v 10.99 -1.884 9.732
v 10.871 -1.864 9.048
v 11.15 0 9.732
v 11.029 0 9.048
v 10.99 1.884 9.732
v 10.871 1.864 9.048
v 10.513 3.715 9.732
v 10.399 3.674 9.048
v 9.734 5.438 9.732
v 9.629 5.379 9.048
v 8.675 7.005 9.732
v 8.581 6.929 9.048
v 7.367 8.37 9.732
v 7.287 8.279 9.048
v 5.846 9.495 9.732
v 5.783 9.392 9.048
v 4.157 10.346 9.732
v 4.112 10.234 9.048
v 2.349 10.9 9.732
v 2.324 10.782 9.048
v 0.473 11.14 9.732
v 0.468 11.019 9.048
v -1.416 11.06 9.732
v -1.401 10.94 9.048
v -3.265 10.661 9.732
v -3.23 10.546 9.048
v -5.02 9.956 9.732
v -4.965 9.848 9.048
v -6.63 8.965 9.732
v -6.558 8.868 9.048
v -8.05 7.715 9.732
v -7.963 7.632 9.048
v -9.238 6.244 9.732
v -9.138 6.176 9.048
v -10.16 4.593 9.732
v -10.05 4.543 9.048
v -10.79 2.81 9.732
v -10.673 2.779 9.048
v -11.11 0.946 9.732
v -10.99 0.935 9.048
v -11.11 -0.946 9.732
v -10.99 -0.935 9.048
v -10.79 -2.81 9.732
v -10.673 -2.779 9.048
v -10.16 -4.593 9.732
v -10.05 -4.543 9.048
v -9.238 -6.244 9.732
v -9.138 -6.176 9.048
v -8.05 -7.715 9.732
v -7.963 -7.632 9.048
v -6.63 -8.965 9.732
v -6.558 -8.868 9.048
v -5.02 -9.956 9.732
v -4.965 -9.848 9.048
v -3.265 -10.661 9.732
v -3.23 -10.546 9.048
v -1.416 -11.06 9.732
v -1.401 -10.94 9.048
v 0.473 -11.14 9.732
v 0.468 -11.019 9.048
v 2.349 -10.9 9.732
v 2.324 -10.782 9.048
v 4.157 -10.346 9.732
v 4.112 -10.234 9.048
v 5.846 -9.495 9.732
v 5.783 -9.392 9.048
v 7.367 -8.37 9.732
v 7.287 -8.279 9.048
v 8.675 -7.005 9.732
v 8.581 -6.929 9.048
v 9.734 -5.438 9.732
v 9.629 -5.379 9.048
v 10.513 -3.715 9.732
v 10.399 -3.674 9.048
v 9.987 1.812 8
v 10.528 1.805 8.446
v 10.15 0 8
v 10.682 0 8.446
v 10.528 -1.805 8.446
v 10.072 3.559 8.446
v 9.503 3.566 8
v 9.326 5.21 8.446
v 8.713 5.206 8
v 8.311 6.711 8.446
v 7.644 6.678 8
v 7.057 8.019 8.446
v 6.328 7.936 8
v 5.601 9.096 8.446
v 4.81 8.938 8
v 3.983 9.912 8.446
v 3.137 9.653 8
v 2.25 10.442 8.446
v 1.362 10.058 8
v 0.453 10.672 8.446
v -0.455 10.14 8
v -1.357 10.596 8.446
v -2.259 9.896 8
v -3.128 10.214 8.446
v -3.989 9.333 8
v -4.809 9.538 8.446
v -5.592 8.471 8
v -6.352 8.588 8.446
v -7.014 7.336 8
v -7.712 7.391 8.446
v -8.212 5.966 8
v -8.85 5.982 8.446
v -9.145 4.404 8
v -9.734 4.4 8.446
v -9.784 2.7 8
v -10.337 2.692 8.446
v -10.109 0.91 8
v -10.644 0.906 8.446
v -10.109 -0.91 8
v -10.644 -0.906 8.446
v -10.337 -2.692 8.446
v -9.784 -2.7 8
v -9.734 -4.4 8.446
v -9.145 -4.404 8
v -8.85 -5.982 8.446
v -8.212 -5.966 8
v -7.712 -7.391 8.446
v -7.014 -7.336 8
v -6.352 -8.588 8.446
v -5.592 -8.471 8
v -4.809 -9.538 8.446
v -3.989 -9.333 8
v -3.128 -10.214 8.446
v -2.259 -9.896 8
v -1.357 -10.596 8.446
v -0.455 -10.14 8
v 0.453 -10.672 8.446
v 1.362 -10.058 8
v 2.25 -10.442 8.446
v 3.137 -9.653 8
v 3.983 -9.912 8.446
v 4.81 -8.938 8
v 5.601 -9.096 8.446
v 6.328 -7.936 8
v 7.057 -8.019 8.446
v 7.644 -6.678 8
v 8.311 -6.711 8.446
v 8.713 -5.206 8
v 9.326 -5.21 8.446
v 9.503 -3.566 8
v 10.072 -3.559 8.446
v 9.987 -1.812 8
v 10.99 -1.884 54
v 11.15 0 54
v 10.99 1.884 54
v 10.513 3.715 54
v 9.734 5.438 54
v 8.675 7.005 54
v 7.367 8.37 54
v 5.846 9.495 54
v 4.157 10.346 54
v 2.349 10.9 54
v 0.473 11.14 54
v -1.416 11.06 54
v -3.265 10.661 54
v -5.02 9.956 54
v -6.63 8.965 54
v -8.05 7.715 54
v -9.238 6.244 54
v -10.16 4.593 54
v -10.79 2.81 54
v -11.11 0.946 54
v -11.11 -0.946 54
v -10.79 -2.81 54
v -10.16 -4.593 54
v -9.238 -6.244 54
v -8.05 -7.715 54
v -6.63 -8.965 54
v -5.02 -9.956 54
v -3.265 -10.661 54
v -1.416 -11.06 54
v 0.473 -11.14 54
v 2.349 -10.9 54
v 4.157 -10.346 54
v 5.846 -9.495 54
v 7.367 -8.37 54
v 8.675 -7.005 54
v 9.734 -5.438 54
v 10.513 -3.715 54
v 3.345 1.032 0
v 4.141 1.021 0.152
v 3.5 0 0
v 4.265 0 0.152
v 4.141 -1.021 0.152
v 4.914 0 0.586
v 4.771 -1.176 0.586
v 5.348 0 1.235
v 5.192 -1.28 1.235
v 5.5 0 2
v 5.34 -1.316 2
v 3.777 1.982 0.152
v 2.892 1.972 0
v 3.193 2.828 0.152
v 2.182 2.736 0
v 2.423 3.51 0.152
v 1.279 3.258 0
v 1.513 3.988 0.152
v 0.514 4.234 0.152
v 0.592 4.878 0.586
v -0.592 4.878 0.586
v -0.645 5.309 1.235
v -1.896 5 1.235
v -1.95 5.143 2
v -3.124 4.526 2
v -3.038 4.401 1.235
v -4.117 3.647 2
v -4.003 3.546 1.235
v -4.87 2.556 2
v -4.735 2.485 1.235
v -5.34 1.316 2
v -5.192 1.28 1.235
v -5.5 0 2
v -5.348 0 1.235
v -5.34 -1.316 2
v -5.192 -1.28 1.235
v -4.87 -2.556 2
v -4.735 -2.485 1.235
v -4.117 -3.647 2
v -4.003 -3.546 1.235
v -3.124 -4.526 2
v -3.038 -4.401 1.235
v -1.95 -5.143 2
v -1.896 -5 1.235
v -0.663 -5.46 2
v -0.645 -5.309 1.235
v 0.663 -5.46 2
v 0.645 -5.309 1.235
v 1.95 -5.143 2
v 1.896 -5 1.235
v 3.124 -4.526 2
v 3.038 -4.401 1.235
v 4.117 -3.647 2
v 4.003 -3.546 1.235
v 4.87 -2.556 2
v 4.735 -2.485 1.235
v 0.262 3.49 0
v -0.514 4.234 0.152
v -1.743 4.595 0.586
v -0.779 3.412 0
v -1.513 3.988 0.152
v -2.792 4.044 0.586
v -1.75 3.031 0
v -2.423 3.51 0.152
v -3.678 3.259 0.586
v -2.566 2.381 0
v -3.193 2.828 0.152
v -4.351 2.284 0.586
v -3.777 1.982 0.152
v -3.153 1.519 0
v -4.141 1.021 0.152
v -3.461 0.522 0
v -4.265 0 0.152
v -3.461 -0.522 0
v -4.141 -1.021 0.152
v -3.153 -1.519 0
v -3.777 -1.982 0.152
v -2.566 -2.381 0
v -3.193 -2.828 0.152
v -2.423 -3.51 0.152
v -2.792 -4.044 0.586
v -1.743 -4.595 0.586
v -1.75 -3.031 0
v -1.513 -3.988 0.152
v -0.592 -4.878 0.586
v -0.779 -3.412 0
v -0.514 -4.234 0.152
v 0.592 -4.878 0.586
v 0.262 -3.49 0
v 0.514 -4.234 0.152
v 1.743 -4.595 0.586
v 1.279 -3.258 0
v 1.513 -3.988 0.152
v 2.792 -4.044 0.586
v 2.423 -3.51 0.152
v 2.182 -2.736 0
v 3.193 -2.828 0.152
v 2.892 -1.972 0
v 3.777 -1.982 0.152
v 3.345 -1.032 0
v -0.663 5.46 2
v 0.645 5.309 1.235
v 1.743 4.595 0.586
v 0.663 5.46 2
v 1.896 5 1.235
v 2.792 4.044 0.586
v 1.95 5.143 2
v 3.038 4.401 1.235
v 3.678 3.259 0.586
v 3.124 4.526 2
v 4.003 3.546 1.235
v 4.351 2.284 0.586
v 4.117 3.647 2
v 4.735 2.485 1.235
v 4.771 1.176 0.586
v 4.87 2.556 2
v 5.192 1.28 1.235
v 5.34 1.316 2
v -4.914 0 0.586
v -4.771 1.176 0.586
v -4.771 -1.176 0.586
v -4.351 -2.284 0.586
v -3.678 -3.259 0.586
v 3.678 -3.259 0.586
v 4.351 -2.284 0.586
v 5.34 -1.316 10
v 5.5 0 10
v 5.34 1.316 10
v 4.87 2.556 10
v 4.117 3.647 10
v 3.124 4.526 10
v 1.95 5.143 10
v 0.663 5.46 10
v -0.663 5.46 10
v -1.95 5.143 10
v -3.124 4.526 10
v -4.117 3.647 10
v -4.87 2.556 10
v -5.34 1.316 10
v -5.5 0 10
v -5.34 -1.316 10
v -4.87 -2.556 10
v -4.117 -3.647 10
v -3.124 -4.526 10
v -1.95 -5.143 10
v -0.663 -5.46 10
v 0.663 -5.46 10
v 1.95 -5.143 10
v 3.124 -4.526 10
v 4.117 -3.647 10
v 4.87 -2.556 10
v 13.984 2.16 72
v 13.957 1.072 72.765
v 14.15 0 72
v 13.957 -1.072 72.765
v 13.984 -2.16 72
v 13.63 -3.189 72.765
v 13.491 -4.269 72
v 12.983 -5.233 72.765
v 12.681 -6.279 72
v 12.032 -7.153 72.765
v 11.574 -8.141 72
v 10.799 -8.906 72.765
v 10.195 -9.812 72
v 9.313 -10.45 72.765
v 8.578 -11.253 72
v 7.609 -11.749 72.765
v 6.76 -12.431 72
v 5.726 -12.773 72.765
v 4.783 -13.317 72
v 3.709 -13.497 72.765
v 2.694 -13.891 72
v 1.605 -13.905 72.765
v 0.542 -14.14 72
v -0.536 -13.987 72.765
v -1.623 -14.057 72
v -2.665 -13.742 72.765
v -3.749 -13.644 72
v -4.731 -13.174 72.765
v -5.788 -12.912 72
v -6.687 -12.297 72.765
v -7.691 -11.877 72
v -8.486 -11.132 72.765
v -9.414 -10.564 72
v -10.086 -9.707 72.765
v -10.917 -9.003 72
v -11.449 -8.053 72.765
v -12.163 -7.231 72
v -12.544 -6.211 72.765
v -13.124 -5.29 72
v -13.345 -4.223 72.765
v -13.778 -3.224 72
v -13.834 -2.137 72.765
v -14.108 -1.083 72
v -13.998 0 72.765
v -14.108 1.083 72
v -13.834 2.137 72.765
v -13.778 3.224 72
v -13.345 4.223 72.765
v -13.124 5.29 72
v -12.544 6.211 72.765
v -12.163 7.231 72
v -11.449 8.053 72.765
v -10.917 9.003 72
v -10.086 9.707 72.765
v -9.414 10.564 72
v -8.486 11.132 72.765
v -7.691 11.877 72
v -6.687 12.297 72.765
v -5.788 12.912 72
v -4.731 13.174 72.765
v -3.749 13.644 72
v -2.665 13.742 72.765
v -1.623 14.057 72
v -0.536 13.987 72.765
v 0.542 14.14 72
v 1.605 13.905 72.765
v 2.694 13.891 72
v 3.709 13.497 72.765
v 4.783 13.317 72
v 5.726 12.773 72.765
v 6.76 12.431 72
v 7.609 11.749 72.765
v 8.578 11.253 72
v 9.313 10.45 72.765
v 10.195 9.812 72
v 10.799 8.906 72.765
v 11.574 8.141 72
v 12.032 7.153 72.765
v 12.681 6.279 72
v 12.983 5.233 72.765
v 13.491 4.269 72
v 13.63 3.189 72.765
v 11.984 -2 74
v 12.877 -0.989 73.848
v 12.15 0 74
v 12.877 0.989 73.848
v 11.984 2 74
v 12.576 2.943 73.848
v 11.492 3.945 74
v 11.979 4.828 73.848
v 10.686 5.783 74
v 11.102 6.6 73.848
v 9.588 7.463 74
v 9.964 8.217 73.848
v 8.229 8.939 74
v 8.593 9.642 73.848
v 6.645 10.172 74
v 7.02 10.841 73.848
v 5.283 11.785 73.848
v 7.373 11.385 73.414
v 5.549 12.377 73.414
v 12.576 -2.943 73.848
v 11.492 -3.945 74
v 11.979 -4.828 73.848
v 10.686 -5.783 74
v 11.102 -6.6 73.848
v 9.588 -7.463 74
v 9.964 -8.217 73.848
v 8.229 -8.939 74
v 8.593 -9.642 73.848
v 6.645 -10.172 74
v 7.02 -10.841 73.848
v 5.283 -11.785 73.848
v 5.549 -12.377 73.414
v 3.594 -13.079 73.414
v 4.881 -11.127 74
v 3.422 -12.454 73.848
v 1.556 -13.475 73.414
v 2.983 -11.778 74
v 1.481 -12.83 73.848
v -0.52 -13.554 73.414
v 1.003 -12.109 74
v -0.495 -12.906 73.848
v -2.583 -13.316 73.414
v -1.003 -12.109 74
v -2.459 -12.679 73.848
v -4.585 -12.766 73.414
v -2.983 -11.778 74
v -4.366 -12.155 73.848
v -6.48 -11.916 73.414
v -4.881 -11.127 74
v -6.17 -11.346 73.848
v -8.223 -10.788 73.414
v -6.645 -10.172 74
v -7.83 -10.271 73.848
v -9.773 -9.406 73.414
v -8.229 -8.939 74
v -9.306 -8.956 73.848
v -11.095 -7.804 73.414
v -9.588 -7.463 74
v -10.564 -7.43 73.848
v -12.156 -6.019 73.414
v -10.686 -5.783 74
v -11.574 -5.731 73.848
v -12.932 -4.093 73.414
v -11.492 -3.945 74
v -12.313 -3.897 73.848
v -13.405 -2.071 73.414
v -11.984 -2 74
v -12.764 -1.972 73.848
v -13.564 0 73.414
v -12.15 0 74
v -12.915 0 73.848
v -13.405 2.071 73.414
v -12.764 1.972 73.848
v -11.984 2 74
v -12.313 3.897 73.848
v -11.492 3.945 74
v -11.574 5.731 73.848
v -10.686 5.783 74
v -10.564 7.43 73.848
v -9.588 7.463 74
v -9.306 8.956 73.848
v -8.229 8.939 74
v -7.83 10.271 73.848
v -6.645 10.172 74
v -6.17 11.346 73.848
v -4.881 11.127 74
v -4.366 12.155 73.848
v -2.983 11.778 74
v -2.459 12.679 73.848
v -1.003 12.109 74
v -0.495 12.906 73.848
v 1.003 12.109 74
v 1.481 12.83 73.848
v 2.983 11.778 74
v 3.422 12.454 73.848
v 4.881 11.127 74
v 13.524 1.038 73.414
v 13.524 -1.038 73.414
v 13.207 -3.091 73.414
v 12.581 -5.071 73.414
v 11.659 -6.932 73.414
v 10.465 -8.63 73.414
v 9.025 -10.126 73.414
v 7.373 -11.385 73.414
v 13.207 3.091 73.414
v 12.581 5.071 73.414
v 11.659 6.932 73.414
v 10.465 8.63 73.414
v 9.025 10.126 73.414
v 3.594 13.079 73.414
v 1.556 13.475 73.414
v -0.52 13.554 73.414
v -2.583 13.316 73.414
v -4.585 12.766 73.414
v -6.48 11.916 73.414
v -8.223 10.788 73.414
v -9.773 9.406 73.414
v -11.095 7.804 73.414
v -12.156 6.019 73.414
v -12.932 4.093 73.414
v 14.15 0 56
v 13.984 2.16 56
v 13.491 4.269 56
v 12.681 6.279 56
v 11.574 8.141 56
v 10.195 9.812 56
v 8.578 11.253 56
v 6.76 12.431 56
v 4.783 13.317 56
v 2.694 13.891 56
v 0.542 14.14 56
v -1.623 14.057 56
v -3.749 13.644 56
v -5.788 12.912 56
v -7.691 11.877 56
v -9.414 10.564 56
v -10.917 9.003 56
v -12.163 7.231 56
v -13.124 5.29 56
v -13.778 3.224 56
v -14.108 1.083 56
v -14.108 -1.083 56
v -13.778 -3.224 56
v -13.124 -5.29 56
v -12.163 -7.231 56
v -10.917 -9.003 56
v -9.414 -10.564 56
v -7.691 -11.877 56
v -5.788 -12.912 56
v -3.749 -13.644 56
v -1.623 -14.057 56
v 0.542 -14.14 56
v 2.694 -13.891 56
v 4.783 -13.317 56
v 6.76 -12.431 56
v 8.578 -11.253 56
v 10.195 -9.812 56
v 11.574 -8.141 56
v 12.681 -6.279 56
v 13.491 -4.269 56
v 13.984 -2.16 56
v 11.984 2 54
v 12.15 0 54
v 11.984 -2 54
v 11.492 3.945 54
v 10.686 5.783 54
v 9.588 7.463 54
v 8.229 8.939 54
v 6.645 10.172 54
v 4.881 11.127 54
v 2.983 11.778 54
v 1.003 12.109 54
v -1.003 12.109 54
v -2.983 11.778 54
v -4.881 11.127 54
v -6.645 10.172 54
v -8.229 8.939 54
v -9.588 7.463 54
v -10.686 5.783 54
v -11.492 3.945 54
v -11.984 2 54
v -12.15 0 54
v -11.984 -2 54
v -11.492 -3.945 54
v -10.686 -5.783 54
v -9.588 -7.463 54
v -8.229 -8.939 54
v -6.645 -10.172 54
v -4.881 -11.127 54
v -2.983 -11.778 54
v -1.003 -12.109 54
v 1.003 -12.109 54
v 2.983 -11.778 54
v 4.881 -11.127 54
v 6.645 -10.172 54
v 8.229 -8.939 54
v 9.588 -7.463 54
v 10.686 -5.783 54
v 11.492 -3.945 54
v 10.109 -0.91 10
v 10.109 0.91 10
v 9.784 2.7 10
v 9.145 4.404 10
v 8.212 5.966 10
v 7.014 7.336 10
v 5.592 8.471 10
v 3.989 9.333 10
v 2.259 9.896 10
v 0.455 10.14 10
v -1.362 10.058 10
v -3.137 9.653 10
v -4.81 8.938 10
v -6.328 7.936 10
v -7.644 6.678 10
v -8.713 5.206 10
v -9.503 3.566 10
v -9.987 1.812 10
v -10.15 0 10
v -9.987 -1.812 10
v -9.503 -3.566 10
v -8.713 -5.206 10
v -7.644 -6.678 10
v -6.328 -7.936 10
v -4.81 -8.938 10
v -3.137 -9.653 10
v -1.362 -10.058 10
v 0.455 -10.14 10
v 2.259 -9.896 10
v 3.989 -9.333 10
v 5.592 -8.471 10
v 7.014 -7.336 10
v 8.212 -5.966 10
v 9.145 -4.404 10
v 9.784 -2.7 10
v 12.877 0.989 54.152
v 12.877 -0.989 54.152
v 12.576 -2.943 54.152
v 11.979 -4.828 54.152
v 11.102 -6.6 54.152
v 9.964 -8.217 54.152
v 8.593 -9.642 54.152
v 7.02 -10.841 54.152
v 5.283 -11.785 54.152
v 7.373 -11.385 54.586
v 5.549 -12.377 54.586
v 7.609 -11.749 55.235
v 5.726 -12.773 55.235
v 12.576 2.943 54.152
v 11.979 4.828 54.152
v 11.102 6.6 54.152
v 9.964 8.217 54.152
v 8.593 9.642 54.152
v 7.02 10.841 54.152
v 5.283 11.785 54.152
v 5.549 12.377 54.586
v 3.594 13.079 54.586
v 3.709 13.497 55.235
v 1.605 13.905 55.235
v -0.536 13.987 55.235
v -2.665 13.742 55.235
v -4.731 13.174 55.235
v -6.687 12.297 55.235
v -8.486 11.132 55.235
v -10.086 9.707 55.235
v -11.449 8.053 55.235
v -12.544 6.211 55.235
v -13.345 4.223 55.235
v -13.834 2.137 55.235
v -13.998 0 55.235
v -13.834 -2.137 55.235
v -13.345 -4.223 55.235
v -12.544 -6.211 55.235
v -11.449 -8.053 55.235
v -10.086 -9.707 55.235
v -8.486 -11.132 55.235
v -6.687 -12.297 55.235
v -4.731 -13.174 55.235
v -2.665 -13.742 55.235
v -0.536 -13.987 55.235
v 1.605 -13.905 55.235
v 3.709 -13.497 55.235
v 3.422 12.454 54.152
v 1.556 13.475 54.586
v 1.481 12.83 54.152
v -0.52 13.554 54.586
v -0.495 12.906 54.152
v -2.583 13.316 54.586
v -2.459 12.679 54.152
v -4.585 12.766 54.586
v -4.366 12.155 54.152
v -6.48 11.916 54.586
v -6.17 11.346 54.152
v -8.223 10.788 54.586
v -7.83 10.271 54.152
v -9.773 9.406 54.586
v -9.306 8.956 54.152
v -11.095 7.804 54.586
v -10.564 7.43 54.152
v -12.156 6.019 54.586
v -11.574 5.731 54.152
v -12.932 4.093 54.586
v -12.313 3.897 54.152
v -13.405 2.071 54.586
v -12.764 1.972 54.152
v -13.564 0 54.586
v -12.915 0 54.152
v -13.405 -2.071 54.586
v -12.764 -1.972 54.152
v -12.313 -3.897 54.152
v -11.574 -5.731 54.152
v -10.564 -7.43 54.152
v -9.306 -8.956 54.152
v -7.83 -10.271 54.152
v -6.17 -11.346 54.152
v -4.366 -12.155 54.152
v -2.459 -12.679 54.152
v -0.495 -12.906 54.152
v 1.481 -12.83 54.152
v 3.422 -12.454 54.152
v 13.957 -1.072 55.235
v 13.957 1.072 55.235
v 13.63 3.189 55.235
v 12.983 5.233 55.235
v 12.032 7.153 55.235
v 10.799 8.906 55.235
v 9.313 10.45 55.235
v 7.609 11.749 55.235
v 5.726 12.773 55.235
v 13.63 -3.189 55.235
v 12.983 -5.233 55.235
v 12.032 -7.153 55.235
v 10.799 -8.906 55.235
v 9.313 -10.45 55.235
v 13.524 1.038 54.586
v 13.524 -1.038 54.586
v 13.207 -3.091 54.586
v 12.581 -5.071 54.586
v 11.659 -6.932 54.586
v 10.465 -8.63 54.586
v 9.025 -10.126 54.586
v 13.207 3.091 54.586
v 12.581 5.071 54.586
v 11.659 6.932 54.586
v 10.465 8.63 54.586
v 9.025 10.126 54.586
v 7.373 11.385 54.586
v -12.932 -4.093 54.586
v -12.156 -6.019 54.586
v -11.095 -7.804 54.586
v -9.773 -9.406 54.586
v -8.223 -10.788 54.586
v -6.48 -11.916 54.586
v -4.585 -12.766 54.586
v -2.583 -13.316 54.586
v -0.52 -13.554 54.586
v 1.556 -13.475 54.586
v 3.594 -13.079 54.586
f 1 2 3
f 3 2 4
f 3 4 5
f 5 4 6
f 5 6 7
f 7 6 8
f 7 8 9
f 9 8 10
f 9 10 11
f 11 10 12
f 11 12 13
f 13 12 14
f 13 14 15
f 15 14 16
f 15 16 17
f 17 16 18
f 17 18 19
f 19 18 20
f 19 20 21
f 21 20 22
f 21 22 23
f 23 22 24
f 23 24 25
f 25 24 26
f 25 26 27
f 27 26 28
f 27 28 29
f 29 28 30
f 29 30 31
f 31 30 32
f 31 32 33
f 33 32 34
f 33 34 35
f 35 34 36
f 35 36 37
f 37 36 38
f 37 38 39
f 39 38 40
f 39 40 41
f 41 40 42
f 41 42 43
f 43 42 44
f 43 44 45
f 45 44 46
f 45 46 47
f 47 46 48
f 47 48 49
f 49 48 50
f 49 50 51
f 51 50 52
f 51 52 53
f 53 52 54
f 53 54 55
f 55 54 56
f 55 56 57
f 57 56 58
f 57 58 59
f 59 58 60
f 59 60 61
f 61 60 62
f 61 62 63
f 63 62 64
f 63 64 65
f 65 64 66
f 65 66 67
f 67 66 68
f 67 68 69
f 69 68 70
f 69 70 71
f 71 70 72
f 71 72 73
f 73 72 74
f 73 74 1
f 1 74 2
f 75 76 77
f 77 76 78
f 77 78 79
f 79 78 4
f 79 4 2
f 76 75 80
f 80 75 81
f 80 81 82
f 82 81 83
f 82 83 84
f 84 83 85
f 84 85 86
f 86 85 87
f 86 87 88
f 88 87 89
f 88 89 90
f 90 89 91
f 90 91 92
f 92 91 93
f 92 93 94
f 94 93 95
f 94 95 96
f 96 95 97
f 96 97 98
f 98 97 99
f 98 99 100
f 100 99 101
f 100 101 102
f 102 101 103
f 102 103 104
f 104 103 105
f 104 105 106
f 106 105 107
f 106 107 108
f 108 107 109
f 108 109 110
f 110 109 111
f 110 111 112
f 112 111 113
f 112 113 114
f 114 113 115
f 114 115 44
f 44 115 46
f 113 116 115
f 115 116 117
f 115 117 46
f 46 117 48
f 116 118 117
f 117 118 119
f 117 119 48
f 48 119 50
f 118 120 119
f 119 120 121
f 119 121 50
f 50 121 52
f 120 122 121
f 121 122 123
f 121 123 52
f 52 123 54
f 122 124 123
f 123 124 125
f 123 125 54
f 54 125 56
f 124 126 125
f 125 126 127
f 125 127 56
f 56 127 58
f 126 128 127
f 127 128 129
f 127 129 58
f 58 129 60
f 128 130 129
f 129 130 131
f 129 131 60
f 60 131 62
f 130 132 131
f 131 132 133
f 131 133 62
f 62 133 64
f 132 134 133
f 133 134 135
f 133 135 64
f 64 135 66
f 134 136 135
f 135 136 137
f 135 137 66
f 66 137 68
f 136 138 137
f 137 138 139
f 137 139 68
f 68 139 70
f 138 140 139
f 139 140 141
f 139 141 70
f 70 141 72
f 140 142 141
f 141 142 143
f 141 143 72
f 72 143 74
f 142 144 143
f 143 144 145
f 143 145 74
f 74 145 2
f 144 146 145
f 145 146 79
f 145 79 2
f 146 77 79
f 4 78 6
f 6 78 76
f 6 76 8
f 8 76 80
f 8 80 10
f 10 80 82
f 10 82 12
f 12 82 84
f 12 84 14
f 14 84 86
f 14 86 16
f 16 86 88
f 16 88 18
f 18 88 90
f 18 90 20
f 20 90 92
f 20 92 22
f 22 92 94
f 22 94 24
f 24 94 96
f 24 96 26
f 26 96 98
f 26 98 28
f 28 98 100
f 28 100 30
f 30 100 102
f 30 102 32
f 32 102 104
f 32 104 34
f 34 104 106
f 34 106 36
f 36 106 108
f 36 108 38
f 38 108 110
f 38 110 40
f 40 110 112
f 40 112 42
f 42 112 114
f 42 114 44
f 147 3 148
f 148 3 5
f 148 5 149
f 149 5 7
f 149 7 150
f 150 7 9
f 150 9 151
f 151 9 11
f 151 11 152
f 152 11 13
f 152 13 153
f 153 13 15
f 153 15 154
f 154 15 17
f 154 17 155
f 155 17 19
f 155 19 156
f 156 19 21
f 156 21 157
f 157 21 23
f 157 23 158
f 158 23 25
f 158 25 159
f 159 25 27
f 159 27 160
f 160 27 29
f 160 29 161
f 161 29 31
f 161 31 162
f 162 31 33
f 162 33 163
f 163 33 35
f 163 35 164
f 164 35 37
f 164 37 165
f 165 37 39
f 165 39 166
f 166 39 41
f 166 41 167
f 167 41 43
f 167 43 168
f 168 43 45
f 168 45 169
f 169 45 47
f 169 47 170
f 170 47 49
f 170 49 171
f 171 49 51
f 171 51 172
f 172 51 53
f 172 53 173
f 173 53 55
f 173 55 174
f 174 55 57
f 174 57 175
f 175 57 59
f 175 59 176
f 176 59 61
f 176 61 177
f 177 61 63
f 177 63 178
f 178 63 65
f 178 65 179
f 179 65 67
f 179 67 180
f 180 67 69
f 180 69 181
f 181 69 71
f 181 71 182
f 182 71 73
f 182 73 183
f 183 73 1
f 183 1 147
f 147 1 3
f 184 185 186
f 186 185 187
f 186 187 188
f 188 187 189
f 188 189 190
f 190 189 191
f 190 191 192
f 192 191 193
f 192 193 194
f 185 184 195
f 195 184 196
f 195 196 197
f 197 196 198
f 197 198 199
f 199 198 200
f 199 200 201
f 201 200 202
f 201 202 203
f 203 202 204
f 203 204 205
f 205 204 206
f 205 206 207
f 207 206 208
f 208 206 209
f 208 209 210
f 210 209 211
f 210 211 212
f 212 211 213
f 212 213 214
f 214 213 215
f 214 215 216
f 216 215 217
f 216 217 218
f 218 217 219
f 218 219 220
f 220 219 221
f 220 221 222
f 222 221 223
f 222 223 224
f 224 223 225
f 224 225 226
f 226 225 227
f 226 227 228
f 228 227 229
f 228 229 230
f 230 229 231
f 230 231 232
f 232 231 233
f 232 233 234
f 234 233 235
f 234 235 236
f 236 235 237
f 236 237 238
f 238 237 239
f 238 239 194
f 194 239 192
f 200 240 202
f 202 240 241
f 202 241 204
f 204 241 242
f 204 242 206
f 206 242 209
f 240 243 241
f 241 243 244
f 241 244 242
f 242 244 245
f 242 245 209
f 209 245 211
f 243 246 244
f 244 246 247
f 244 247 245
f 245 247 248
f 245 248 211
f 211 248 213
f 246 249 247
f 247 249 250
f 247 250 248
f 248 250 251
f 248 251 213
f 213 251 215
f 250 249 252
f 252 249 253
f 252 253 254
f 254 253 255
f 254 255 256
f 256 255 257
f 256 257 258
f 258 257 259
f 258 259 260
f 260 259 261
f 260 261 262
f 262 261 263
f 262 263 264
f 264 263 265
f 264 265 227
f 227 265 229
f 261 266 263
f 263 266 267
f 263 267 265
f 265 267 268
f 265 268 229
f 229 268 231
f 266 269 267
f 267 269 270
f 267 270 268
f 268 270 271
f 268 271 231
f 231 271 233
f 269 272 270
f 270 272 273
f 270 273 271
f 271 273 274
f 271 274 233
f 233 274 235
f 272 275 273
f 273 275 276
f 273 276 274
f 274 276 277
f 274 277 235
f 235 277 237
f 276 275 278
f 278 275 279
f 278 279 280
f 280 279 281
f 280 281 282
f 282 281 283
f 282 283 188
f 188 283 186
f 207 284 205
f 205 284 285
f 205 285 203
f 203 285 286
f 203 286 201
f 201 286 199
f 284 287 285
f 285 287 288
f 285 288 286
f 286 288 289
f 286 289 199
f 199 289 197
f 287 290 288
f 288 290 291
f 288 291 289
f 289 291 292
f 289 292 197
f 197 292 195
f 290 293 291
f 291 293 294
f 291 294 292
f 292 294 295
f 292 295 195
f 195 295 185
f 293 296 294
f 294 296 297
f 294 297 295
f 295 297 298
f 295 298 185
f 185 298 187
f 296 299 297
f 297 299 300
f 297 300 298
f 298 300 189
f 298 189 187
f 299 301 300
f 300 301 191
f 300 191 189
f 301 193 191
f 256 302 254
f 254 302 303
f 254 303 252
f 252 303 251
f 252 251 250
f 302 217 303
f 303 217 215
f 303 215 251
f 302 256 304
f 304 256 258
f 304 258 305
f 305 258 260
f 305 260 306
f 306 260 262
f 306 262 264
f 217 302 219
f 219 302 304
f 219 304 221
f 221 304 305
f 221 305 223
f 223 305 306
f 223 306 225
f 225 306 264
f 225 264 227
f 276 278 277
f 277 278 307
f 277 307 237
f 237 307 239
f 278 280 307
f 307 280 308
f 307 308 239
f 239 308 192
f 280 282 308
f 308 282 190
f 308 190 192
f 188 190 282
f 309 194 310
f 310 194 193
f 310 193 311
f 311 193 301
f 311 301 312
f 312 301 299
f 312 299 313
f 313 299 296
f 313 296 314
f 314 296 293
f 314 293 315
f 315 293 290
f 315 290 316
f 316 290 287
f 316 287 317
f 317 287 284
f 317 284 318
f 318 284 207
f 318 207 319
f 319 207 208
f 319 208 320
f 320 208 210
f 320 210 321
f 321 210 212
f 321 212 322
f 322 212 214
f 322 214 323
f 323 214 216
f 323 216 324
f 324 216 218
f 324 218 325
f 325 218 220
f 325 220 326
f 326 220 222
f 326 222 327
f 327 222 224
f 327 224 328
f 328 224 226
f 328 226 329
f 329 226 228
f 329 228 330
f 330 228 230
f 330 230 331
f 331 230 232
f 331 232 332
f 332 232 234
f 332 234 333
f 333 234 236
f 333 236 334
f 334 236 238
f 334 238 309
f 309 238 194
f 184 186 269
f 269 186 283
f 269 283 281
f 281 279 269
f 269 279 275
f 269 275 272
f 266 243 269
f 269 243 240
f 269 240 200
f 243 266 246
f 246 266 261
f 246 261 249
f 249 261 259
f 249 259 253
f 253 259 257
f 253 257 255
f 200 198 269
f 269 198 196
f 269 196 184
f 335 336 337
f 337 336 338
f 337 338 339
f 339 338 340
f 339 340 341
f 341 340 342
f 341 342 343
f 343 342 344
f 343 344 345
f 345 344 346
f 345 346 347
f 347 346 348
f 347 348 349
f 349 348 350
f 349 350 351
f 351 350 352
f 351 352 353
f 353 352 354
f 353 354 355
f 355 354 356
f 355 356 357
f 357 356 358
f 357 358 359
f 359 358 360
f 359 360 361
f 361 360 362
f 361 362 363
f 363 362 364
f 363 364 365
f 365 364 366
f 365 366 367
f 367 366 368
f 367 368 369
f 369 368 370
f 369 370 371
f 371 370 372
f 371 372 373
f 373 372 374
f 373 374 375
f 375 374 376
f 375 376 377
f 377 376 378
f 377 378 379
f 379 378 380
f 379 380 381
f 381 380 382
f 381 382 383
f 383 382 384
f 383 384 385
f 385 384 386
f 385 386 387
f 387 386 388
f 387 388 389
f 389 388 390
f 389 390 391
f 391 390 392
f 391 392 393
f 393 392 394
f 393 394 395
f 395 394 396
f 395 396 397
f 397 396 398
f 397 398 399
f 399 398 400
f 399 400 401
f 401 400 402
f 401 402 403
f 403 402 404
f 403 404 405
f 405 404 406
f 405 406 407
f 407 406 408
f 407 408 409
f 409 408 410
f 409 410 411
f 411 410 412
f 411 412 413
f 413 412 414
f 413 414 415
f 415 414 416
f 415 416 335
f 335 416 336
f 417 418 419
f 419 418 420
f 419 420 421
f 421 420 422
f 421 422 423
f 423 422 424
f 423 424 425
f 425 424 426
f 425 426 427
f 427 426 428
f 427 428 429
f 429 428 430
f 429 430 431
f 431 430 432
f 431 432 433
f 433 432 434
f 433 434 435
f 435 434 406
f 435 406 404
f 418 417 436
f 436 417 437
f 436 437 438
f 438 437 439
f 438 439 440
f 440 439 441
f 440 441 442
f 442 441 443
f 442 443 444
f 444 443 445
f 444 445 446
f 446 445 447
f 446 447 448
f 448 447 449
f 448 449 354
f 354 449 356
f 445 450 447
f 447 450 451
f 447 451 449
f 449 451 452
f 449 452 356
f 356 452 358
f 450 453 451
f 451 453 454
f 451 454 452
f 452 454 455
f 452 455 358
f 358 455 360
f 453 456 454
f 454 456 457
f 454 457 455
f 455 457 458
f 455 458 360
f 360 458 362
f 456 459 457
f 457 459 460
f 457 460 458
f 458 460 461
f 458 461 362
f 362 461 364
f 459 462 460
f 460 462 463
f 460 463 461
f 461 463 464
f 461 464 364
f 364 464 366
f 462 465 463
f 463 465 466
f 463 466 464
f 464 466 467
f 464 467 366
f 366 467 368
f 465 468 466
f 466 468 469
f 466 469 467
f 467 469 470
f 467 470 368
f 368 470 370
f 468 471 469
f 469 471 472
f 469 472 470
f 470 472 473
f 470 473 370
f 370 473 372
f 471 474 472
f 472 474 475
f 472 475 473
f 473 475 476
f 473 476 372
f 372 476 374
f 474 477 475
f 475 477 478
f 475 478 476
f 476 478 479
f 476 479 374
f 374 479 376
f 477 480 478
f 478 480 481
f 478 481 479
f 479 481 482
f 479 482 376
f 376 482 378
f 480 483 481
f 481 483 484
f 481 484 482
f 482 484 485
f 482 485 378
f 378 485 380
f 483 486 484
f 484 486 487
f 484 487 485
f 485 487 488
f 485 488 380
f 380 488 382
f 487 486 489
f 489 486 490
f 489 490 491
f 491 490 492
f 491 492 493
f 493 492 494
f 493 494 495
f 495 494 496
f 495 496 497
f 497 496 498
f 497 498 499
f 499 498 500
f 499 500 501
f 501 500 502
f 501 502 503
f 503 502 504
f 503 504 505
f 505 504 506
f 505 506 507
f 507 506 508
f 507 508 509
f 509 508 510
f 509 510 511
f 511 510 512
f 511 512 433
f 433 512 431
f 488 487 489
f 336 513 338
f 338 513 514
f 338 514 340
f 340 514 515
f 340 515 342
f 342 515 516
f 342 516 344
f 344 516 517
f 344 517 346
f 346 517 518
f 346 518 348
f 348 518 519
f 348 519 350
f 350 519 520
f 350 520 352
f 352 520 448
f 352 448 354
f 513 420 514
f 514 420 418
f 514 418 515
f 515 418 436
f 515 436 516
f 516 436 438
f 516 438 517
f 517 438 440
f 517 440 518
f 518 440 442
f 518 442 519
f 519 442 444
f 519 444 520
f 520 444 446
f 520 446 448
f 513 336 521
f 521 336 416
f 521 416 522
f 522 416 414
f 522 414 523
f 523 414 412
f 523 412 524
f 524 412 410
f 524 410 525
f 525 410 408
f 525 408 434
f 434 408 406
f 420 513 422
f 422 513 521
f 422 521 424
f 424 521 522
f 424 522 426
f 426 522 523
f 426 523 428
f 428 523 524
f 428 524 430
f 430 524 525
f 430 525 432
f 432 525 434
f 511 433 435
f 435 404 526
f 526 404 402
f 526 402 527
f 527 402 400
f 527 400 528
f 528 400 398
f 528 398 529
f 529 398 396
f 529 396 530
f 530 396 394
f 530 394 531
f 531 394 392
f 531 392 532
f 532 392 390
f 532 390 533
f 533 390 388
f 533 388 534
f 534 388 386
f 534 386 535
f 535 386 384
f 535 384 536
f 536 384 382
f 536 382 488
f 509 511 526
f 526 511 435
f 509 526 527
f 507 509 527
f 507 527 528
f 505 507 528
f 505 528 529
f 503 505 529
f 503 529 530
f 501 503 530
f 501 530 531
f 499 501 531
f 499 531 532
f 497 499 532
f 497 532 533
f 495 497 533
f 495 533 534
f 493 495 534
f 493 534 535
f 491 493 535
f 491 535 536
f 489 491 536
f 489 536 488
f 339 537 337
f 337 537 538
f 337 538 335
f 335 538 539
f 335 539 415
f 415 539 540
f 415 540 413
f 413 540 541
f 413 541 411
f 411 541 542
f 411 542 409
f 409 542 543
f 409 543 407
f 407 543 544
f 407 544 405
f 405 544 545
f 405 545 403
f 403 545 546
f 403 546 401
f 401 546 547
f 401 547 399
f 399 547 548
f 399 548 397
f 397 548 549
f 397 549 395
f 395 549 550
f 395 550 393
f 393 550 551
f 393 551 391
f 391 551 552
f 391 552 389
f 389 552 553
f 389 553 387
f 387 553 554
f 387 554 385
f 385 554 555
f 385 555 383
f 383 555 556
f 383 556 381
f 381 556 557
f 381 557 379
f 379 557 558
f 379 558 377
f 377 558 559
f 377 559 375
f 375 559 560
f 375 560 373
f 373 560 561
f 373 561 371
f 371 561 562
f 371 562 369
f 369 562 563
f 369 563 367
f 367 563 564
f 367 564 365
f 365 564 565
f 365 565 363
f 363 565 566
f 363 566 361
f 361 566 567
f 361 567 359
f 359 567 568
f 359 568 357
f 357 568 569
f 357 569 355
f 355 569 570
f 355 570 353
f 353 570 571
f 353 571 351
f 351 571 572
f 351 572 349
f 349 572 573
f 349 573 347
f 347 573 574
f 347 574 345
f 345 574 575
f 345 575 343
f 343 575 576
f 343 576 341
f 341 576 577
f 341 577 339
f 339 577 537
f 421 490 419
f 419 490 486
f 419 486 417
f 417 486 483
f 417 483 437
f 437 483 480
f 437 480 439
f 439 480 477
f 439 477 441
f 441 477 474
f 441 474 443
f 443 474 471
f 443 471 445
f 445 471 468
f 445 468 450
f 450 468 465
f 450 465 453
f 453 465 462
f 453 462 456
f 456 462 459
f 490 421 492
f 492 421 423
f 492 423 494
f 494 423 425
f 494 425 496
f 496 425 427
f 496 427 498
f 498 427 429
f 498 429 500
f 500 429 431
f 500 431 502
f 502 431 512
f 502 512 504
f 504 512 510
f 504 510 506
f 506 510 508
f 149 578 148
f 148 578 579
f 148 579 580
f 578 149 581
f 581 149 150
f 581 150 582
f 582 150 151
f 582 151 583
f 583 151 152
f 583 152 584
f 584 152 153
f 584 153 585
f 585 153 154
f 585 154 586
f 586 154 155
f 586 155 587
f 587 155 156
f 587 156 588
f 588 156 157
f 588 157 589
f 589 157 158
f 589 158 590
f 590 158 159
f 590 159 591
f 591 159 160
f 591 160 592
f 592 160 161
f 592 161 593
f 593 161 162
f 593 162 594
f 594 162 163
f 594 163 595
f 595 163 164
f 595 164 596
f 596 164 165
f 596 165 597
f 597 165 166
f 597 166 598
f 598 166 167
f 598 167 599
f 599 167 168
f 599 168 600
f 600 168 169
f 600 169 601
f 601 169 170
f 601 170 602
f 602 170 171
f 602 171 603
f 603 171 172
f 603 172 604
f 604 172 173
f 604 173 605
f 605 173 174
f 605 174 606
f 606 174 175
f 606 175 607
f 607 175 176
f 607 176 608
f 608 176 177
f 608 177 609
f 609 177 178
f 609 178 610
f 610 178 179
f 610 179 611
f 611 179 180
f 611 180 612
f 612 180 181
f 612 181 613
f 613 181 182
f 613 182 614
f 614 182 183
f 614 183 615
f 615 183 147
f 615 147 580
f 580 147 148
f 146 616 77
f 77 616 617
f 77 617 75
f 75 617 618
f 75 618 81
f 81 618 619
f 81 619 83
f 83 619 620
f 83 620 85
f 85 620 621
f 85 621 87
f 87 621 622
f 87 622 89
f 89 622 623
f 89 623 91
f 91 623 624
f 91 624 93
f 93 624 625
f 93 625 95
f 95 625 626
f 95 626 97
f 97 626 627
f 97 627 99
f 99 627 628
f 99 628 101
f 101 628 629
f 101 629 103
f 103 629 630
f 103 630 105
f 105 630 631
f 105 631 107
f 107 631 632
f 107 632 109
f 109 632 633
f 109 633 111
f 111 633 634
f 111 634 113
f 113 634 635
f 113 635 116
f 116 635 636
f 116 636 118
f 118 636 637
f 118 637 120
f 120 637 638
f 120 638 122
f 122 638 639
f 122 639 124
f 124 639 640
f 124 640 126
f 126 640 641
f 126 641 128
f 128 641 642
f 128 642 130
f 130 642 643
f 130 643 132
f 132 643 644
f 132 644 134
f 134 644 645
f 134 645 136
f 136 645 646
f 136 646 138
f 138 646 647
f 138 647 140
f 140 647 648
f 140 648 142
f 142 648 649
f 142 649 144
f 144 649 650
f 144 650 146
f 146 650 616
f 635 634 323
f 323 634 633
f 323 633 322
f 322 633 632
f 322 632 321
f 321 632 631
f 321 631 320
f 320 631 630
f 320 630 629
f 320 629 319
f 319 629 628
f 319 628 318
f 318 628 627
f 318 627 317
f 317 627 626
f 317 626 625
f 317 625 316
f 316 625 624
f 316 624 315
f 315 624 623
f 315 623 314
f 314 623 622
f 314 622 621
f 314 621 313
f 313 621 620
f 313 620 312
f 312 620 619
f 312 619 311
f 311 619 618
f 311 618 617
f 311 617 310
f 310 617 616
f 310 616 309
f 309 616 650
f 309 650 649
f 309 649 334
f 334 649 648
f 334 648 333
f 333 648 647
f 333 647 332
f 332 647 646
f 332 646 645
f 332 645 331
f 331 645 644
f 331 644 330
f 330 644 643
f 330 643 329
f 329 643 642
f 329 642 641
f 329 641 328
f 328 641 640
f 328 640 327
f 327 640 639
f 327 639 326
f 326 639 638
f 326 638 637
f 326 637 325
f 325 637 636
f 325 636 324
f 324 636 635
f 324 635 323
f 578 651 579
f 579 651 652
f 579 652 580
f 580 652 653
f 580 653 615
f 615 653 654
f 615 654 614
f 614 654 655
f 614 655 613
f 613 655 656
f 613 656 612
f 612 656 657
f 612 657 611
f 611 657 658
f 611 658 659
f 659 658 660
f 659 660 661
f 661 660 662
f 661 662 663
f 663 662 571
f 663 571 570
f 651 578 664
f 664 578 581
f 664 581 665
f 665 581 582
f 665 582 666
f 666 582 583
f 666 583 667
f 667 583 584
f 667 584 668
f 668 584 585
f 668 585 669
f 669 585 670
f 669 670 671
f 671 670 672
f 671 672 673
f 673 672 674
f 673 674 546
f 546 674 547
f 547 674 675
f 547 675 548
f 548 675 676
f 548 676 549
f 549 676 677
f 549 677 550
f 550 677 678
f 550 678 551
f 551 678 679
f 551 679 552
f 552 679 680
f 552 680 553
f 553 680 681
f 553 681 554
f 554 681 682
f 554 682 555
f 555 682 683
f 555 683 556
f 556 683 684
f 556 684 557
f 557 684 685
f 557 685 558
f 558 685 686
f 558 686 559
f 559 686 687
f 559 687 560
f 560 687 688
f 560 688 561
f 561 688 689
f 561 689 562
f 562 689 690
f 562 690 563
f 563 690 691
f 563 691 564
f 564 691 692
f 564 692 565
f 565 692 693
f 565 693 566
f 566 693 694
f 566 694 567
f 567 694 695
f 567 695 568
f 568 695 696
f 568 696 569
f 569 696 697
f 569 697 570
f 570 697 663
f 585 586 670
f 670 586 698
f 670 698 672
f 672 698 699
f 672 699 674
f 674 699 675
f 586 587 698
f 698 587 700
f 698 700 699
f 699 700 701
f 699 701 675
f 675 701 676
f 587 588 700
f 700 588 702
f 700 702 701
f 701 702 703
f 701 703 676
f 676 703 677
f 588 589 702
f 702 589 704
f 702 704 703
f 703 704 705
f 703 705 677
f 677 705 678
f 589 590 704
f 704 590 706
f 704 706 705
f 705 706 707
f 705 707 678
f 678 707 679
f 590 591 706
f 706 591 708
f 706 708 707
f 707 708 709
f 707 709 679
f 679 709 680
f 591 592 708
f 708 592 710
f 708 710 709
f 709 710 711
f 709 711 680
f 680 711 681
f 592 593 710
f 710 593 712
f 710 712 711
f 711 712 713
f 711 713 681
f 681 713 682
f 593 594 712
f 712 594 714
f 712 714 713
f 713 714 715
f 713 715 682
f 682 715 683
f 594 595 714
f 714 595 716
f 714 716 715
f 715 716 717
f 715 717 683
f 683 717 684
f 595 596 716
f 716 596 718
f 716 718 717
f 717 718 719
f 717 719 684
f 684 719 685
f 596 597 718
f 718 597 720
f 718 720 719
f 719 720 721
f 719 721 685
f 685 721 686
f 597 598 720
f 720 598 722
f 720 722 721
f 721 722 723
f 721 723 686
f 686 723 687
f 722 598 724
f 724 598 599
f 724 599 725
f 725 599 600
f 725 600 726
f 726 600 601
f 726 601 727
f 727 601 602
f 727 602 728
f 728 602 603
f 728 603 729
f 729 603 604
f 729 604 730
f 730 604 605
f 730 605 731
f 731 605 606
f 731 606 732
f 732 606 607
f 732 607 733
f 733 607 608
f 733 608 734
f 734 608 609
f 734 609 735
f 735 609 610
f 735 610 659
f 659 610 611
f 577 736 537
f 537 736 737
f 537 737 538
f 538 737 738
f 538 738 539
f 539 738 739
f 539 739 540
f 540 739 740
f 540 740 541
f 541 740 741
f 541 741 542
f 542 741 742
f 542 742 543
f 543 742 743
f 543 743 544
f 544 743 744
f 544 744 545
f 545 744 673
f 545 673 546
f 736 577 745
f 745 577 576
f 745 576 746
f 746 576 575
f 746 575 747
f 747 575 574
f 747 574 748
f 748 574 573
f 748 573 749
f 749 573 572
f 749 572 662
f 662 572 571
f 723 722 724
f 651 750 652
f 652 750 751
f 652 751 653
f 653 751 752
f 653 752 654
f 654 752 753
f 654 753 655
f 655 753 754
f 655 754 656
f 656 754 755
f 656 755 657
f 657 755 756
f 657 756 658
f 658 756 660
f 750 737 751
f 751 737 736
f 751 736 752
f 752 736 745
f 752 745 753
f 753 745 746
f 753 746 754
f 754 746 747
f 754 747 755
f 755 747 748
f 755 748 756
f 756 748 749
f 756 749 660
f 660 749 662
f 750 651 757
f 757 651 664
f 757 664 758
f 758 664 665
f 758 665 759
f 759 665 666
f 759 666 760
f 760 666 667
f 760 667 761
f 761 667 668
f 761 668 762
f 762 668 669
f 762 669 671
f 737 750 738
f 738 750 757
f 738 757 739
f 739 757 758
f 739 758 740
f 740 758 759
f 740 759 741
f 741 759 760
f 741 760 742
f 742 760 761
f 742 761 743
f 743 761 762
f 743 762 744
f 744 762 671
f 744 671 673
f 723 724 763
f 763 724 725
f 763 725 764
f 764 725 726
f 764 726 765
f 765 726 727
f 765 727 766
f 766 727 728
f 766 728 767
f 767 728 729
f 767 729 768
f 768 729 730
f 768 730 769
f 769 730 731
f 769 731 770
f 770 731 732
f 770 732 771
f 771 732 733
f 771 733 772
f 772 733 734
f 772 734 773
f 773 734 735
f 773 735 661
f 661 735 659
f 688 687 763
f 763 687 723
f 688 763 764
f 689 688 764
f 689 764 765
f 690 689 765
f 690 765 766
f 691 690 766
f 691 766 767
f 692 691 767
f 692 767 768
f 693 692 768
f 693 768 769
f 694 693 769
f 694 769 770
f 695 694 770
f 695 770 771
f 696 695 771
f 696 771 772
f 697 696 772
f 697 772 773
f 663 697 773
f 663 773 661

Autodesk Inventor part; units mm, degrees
ref_plane "YZ Plane" through (0, 0, 0) normal (1, 0, 0) x (0, 1, 0)
ref_plane "XZ Plane" through (0, 0, 0) normal (0, 1, 0) x (-1, 0, 0)
ref_plane "XY Plane" through (0, 0, 0) normal (0, 0, 1) x (1, 0, 0)
sketch "Sketch1" plane through (0, 0, 0) normal (0, 0, 1) x (1, 0, 0)
  circle A0 centre (0, 0) radius 5.5
  dimension "d0" = 11
extrude "Extrusion1" add sketch "Sketch1" along normal blind 10
sketch "Sketch2" plane through (0, 0, 10) normal (0, 0, 1) x (1, 0, 0)
  circle A0 centre (0, 0) radius 11.15
  dimension "d3" = 22.3
extrude "Extrusion3" add sketch "Sketch2" along normal blind 44
sketch "Sketch3" plane through (0, 0, 10) normal (0, 0, -1) x (-1, 0, 0)
  circle A0 centre (0, 0) radius 10.15
  circle A1 centre (0, 0) radius 11.15
  dimension "d8" = 20.3
  dimension "d9" = 22.3
extrude "Extrusion4" add sketch "Sketch3" along normal blind 2
sketch "Sketch4" plane through (0, 0, 54) normal (0, 0, 1) x (1, 0, 0)
  circle A0 centre (0, 0) radius 14.15
  dimension "d12" = 28.3
extrude "Extrusion5" add sketch "Sketch4" along normal blind 20
fillet "Fillet1" radius 2 1 edges at (-14.15, 0, 74)
fillet "Fillet2" radius 2 1 edges at (-5.5, 0, 0)
fillet "Fillet3" radius 2 1 edges at (11.15, 0, 8)
fillet "Fillet4" radius 2 1 edges at (-14.15, 0, 54)
properties part number "Elbow_Parallel_Rod_V1"
